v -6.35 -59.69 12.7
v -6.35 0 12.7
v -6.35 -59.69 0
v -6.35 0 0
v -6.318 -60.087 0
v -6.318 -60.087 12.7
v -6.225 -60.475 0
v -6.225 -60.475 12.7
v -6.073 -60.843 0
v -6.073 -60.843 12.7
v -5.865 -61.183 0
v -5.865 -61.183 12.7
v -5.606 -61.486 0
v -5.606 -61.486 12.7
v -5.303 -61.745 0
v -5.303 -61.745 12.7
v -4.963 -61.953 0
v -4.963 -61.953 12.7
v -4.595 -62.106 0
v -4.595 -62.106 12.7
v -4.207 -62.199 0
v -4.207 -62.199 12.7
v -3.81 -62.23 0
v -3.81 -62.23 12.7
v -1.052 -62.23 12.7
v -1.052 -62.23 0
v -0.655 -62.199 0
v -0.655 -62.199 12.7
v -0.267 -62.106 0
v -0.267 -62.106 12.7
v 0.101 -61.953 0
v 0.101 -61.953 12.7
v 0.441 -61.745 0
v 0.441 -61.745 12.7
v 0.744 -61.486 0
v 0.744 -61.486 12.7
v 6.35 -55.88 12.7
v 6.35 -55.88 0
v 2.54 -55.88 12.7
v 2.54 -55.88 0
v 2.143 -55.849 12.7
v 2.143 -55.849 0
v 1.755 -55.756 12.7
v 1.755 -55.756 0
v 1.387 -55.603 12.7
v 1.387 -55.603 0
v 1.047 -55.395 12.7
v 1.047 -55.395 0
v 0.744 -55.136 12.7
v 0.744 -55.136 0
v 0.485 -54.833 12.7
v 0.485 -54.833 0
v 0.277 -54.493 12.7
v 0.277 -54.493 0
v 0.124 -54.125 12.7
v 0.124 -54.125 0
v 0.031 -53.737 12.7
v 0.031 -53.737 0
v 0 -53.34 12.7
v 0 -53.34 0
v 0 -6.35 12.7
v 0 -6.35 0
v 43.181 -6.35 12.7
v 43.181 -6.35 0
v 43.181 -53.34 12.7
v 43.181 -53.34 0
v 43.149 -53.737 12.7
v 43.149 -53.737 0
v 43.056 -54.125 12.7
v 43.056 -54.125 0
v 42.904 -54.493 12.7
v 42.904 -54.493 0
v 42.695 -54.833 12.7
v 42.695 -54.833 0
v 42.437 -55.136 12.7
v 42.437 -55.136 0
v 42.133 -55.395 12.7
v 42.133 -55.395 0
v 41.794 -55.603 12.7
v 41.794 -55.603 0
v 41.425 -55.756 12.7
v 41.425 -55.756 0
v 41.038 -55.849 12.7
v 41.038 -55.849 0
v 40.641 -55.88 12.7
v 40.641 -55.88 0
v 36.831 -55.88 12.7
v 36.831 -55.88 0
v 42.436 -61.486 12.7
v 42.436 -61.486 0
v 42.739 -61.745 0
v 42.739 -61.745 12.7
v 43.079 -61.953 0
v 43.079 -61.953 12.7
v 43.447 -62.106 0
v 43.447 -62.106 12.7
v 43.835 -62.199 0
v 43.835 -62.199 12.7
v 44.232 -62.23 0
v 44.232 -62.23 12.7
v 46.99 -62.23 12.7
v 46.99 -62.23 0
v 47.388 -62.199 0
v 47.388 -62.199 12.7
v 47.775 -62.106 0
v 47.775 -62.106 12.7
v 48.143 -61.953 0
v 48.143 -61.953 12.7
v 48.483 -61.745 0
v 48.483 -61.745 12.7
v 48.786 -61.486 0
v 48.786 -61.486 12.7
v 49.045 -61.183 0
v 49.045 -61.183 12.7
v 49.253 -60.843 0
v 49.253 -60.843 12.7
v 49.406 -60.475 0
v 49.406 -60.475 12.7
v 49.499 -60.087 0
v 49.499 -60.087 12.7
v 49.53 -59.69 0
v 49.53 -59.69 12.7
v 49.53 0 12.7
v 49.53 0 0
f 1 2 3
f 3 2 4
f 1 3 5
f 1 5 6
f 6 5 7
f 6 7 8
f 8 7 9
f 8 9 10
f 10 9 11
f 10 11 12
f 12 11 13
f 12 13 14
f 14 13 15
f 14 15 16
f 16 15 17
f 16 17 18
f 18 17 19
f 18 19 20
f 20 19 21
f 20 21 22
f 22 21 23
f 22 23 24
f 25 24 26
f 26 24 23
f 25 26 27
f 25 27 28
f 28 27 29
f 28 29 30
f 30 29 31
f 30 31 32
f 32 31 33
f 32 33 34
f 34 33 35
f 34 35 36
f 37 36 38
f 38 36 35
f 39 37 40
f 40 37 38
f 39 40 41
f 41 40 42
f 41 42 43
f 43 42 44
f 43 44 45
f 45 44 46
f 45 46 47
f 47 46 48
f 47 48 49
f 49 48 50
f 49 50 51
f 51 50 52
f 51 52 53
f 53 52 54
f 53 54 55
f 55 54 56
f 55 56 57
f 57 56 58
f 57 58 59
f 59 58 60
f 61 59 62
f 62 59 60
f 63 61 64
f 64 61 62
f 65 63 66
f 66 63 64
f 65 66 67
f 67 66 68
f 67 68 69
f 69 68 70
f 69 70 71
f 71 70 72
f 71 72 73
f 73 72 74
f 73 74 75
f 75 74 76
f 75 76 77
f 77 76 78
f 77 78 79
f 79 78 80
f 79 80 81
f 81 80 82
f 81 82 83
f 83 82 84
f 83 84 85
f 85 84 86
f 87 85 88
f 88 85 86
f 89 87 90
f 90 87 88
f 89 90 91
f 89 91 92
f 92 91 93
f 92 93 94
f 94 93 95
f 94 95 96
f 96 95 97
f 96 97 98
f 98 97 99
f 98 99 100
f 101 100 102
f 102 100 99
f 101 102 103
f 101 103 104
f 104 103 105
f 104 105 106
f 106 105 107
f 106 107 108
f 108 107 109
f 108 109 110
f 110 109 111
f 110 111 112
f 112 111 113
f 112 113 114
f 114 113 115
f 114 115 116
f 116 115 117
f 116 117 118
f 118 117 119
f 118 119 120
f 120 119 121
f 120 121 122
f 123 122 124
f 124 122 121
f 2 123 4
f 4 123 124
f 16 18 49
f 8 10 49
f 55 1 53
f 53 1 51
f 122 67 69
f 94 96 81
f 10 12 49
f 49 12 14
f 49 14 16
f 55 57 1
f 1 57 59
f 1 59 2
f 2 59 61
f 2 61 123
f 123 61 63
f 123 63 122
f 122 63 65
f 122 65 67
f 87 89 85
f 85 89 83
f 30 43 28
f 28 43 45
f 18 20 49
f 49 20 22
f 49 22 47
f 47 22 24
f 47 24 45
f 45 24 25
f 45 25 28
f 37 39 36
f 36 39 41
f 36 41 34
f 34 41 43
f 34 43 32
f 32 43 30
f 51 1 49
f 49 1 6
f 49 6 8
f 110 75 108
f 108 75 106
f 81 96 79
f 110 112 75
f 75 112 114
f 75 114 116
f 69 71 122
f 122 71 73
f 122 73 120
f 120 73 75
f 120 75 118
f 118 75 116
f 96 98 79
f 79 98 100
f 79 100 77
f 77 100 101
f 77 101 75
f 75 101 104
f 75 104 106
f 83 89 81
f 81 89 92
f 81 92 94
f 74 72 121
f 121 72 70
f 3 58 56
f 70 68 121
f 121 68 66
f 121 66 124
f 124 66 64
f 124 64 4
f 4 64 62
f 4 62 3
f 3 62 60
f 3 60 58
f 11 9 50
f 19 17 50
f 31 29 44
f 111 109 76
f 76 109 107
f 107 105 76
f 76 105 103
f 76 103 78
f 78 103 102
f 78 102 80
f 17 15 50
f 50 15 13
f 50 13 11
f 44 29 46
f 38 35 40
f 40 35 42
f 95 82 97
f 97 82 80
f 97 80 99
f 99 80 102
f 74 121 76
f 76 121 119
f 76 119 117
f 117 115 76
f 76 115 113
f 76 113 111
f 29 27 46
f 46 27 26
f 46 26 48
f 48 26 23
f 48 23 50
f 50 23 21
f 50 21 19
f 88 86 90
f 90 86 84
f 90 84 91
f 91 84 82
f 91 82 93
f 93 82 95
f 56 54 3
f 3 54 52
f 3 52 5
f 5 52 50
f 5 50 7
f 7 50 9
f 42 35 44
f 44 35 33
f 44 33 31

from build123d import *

# Parameters (mm, degrees)
BOSS_EXTRUDE1_DEPTH = 12.7


with BuildPart() as part:
    # Sketch2 → Boss-Extrude1 (new body)
    with BuildSketch(Plane.XY):
        with BuildLine():
            Line((0, 0), (49.530251281, 0))
            Line((49.530251281, 0), (49.530251281, -59.689999999))
            ThreePointArc((49.530251281, -59.689999999), (48.786302505, -61.486051224), (46.990251281, -62.229999999))
            Line((46.990251281, -62.229999999), (44.232383169, -62.229999999))
            ThreePointArc((44.232383169, -62.229999999), (43.260344035, -62.036644396), (42.436296408, -61.486015686))
            Line((42.436296408, -61.486015686), (36.830502562, -55.879999999))
            Line((36.830502562, -55.879999999), (40.640502562, -55.879999999))
            ThreePointArc((40.640502562, -55.879999999), (42.436553786, -55.136051224), (43.180502562, -53.339999999))
            Line((43.180502562, -53.339999999), (43.180502562, -6.35))
            Line((43.180502562, -6.35), (0, -6.35))
            Line((0, -6.35), (0, -53.339999999))
            ThreePointArc((0, -53.339999999), (0.743948776, -55.136051224), (2.54, -55.879999999))
            Line((2.54, -55.879999999), (6.35, -55.879999999))
            Line((6.35, -55.879999999), (0.744206153, -61.486015686))
            ThreePointArc((0.744206153, -61.486015686), (-0.079841474, -62.036644396), (-1.051880608, -62.229999999))
            Line((-1.051880608, -62.229999999), (-3.809748719, -62.229999999))
            ThreePointArc((-3.809748719, -62.229999999), (-5.605799943, -61.486051224), (-6.349748719, -59.689999999))
            Line((-6.349748719, -59.689999999), (-6.349748719, 0))
            Line((-6.349748719, 0), (0, 0))
        make_face()
    extrude(amount=BOSS_EXTRUDE1_DEPTH)


solid = part.part
